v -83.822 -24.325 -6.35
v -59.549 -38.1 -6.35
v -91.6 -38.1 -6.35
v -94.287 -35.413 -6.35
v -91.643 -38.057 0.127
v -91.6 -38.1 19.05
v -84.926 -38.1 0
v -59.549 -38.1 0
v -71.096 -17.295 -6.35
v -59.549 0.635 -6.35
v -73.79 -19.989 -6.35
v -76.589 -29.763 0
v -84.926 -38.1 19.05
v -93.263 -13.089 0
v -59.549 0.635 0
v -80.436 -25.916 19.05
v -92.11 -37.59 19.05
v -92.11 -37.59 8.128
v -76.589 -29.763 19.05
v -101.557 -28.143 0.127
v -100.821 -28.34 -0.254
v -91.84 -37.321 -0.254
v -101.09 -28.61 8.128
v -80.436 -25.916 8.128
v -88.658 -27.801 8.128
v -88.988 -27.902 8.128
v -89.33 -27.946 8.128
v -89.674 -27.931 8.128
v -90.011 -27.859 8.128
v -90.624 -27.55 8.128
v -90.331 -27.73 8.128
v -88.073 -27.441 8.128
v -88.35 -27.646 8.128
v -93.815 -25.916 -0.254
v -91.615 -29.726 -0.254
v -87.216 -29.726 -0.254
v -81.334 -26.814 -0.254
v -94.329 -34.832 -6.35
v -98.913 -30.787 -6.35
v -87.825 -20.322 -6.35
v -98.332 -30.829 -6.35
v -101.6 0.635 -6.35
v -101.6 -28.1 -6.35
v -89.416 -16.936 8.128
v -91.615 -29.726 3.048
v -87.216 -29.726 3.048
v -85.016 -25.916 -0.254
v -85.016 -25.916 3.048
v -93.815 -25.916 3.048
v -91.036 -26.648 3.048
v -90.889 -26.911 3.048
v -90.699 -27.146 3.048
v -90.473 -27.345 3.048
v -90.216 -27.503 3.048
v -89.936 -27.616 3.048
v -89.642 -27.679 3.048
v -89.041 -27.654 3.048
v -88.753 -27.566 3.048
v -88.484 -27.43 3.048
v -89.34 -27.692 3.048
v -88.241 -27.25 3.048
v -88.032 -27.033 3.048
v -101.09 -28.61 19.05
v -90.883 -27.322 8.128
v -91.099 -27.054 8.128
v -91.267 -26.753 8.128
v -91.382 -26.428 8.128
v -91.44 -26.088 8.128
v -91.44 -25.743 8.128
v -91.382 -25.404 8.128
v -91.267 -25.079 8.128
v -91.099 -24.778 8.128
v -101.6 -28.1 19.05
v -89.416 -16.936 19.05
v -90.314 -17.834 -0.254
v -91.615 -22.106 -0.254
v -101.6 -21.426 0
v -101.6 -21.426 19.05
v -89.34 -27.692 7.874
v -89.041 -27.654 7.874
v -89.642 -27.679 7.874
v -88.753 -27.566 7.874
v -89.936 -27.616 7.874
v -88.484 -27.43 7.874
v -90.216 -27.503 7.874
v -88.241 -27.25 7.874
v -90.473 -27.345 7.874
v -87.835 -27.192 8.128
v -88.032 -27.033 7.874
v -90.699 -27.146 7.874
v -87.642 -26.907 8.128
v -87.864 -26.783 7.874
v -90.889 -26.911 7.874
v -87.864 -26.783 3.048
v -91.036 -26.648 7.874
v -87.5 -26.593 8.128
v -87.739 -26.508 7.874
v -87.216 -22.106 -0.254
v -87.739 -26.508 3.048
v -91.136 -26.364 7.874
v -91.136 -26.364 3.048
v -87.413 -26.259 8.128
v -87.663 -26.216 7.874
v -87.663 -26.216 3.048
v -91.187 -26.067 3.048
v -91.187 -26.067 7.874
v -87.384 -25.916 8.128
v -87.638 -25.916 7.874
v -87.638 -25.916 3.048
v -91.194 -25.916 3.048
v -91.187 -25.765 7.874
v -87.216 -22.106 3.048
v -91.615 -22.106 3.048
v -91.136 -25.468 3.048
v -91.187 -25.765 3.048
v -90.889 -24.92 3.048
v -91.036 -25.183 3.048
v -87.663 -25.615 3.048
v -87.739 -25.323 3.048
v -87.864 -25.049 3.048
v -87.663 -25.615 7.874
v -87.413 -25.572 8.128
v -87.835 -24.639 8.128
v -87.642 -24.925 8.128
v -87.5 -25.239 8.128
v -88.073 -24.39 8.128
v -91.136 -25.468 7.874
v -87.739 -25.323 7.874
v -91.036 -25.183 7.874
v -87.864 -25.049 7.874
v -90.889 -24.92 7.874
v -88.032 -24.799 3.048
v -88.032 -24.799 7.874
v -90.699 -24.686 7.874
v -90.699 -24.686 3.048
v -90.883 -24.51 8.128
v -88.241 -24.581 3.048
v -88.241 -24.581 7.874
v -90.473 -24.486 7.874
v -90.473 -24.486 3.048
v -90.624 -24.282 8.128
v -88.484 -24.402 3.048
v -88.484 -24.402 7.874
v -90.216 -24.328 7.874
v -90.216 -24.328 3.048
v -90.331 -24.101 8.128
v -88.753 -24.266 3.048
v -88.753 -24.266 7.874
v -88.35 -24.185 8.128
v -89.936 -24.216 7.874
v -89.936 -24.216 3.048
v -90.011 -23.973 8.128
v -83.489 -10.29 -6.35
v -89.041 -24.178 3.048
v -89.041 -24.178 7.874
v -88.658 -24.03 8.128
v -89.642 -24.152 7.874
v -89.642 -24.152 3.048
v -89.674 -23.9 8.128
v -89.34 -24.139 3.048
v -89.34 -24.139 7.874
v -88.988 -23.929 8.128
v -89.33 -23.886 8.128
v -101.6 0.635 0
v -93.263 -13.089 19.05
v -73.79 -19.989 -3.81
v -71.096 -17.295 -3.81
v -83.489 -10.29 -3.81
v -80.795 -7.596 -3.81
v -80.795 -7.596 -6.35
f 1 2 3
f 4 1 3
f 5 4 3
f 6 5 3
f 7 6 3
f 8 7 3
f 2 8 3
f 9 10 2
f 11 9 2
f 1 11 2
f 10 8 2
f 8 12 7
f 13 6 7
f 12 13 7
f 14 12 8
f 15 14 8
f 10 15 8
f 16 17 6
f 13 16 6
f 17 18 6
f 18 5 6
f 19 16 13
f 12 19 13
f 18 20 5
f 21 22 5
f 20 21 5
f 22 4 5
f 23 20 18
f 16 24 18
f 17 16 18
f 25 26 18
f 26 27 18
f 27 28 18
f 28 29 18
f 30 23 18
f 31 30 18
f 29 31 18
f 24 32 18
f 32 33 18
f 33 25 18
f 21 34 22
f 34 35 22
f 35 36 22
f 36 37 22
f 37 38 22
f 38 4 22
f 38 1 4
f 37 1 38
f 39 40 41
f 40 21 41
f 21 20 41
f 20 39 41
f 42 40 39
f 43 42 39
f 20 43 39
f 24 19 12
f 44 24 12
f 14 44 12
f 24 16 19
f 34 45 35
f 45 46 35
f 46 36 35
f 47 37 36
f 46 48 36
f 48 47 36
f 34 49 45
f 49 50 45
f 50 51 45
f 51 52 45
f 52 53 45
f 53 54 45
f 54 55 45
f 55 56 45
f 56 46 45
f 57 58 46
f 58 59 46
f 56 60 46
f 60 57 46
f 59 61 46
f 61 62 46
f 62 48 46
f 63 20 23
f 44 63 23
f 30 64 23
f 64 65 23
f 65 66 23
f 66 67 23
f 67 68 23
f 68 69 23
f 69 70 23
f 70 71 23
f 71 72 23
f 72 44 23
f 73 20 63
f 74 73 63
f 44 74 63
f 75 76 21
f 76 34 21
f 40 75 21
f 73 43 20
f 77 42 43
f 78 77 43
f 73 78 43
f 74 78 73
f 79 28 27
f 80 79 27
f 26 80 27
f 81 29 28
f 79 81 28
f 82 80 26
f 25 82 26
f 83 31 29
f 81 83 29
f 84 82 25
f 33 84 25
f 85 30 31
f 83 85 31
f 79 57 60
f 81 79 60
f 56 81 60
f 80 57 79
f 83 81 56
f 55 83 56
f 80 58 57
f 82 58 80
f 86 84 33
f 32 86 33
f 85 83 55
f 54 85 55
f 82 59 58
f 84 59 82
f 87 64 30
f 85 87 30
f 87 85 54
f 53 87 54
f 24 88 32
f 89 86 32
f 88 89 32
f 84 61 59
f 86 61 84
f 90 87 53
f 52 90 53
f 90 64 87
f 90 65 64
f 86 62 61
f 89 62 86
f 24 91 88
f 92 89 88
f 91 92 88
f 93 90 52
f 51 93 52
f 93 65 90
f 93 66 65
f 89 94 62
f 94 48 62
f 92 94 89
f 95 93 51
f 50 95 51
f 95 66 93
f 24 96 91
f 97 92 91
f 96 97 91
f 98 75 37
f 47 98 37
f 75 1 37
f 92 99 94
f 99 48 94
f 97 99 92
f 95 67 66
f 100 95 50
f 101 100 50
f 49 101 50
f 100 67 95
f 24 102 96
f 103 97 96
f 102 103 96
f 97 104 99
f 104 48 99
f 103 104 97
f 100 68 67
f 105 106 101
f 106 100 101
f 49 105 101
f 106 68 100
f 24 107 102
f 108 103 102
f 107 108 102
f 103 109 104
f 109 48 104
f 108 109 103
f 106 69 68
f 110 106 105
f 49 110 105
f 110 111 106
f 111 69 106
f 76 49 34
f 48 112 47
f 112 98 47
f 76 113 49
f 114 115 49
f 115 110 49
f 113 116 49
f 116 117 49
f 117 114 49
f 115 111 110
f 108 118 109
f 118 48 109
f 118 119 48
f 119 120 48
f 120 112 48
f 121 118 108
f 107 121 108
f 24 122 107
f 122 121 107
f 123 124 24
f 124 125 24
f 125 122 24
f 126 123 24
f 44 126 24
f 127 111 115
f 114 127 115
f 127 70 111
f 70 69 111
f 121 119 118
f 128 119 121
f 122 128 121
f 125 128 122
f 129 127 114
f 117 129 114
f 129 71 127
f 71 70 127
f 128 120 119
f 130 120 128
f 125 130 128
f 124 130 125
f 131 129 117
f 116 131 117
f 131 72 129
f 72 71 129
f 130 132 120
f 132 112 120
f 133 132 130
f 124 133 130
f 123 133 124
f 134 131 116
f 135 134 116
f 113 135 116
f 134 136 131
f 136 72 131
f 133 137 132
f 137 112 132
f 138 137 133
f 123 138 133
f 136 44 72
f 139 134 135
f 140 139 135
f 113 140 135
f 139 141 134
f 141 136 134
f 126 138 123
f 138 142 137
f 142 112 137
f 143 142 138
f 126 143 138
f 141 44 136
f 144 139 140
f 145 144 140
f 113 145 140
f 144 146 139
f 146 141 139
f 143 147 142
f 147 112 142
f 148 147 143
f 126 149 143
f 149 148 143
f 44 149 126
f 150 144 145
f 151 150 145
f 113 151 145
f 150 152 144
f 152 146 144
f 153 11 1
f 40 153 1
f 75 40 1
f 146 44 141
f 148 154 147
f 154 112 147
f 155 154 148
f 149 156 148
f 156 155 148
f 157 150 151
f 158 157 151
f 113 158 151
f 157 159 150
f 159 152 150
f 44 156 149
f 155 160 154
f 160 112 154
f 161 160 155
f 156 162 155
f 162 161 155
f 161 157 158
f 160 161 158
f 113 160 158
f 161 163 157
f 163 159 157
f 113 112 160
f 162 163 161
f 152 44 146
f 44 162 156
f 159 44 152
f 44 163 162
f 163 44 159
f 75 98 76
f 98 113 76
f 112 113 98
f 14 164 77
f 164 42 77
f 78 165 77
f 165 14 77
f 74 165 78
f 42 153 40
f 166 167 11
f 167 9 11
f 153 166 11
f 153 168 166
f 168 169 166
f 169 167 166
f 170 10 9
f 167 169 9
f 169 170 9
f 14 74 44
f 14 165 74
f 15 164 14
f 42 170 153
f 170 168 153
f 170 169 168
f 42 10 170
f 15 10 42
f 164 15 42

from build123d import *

# Parameters (mm, degrees)
BOSS_EXTRUDE1_DEPTH     = 27.432
BOSS_EXTRUDE2_DEPTH     = 5.08
SKETCH4_R               = 1.524
CUT_EXTRUDE1_DEPTH      = 2.286
SKETCH4_4_R             = 1.524
CUT_EXTRUDE2_DEPTH      = 63.630575033
BOSS_EXTRUDE3_DEPTH     = 3.81
FILLET1_R               = 2.54
CHAMFER3_SIZE           = 1.27
CHAMFER4_SIZE           = 0.254
SKETCH8_W               = 101.6
SKETCH8_H               = 44.45
CUT_EXTRUDE3_DEPTH      = 5.08
CHAMFER5_SIZE           = 1.27
BOSS_EXTRUDE4_DEPTH     = 6.35
FILLET2_R               = 1.27
BOSS_EXTRUDE5_DEPTH     = 19.05
CUT_EXTRUDE4_DEPTH      = 15.24
MIRROR3_COPY_1_DEPTH    = 15.24
CHAMFER7_SIZE           = 0.381
CUT_EXTRUDE6_DEPTH      = 2.54
MIRROR5_COPY_1_DEPTH    = 2.54
CUT_EXTRUDE7_DEPTH      = 10.922
SKETCH18_R              = 1.778
CUT_EXTRUDE8_DEPTH      = 8.382
MIRROR7_COPY_1_SKETCH_R = 1.778
MIRROR7_COPY_1_DEPTH    = 8.382
SKETCH19_W              = 135.869666512
SKETCH19_H              = 67.345799606
CUT_EXTRUDE9_DEPTH      = 31.242
BOSS_EXTRUDE6_DEPTH     = 20.32
SKETCH21_W              = 80.01
SKETCH21_H              = 52.07
BOSS_EXTRUDE7_DEPTH     = 3.81
FILLET3_R               = 2.54
CHAMFER8_SIZE           = 1.27
CHAMFER9_SIZE           = 0.254
CUT_EXTRUDE10_DEPTH     = 3.302
MIRROR9_COPY_1_DEPTH    = 3.302
CUT_EXTRUDE11_DEPTH     = 113.70847528


with BuildPart() as part:
    # Sketch1 → Boss-Extrude1 (new body)
    with BuildSketch(Plane(origin=(10.858740921, 0, 0), x_dir=(1, 0, 0), z_dir=(0, 0, 1))):
        Polygon((-52.705, 25.4), (-52.705, 21.59), (48.895, 21.59), (48.895, -22.86), (-52.705, -22.86), (-52.705, -25.4), (52.705, -25.4), (52.705, 25.4), align=None)
    extrude(amount=BOSS_EXTRUDE1_DEPTH)

    # Sketch1<3> → Boss-Extrude2 (add)
    with BuildSketch(Plane(origin=(10.858740921, 0, 0), x_dir=(1, 0, 0), z_dir=(0, 0, 1))):
        Polygon((48.895, 21.59), (-52.705, 21.59), (-52.705, 13.97), (-6.985, 13.97), (-6.985, -6.35), (-52.705, -6.35), (-52.705, -22.86), (48.895, -22.86), align=None)
    extrude(amount=BOSS_EXTRUDE2_DEPTH)

    # Sketch4 → Cut-Extrude1 (cut)
    # profile 1 of 4: a face of its own
    with BuildSketch(Plane(origin=(10.858740921, 0, 5.08), x_dir=(1, 0, 0), z_dir=(0, 0, 1))):
        Polygon((-44.785877438, 21.59), (-47.924122562, 21.59), (-49.493245123, 18.8722), (-47.924122562, 16.1544), (-44.785877438, 16.1544), (-43.216754877, 18.8722), align=None)
        with Locations((-46.355, 18.8722)):
            Circle(SKETCH4_R, mode=Mode.SUBTRACT)
    # profile 2 of 4: a face of its own
    with BuildSketch(Plane(origin=(10.858740921, 0, 5.08), x_dir=(1, 0, 0), z_dir=(0, 0, 1))):
        Polygon((21.126640721, 16.1544), (17.988395597, 16.1544), (16.419273036, 18.8722), (17.988395597, 21.59), (21.126640721, 21.59), (22.695763282, 18.8722), align=None)
        with Locations((19.557518159, 18.8722)):
            Circle(SKETCH4_R, mode=Mode.SUBTRACT)
    # profile 3 of 4: a face of its own
    with BuildSketch(Plane(origin=(10.858740921, 0, 5.08), x_dir=(1, 0, 0), z_dir=(0, 0, 1))):
        Polygon((22.695763282, -18.8722), (21.126640721, -16.1544), (17.988395597, -16.1544), (16.419273036, -18.8722), (17.988395597, -21.59), (21.126640721, -21.59), align=None)
        with Locations((19.557518159, -18.8722)):
            Circle(SKETCH4_R, mode=Mode.SUBTRACT)
    # profile 4 of 4: a face of its own
    with BuildSketch(Plane(origin=(10.858740921, 0, 5.08), x_dir=(1, 0, 0), z_dir=(0, 0, 1))):
        Polygon((-49.493245123, -18.8722), (-47.924122562, -16.1544), (-44.785877438, -16.1544), (-43.216754877, -18.8722), (-44.785877438, -21.59), (-47.924122562, -21.59), align=None)
        with Locations((-46.355, -18.8722)):
            Circle(SKETCH4_R, mode=Mode.SUBTRACT)
    extrude(amount=-CUT_EXTRUDE1_DEPTH, mode=Mode.SUBTRACT)

    # Sketch4<4> → Cut-Extrude2 (cut, through all)
    with BuildSketch(Plane(origin=(10.858740921, 0, 5.08), x_dir=(1, 0, 0), z_dir=(0, 0, 1))):
        with Locations((-46.355, 18.8722)):
            Circle(SKETCH4_4_R)
        with Locations((19.557518159, 18.8722)):
            Circle(SKETCH4_4_R)
        with Locations((-46.355, -18.8722)):
            Circle(SKETCH4_4_R)
        with Locations((19.557518159, -18.8722)):
            Circle(SKETCH4_4_R)
    extrude(amount=-CUT_EXTRUDE2_DEPTH, mode=Mode.SUBTRACT)

    # Sketch7 → Boss-Extrude3 (add)
    with BuildSketch(Plane(origin=(10.858740921, 0, 27.432), x_dir=(1, 0, 0), z_dir=(0, 0, 1))):
        Polygon((-52.705, 25.4), (52.705, 25.4), (52.705, -25.4), (-52.705, -25.4), (-52.705, -6.35), (-46.355, -6.35), (-46.355, 6.35), (-52.705, 6.35), align=None)
    extrude(amount=BOSS_EXTRUDE3_DEPTH)

    # Fillet1
    fillet1_edges = [part.edges().sort_by_distance(p)[0] for p in [
        (63.563740921, 25.4, 15.621),
        (63.563740921, -25.4, 15.621),
        (10.858740921, -25.4, 31.242),
        (63.563740921, 0, 31.242),
        (10.858740921, 25.4, 31.242),
    ]]
    fillet(fillet1_edges, radius=FILLET1_R)

    # Chamfer3
    chamfer3_edges = [part.edges().sort_by_distance(p)[0] for p in [
        (-41.846259079, 13.97, 27.432),
        (-41.846259079, 6.35, 29.337),
        (-41.846259079, 21.59, 16.256),
        (-41.846259079, -14.605, 27.432),
        (-41.846259079, -6.35, 29.337),
        (-38.671259079, 6.35, 31.242),
        (-35.496259079, 0, 31.242),
        (-38.671259079, -6.35, 31.242),
        (-41.846259079, -22.86, 16.256),
    ]]
    chamfer(chamfer3_edges, length=CHAMFER3_SIZE)

    # Chamfer4
    chamfer4_edges = [part.edges().sort_by_distance(p)[0] for p in [
        (28.892259079, 18.8722, 0),
        (-37.020259079, -18.8722, 0),
        (28.892259079, -18.8722, 0),
        (-37.020259079, 18.8722, 0),
    ]]
    chamfer(chamfer4_edges, length=CHAMFER4_SIZE)

    # Sketch8 → Cut-Extrude3 (cut)
    with BuildSketch(Plane(origin=(10.858740921, 0, 5.08), x_dir=(1, 0, 0), z_dir=(0, 0, 1))):
        with Locations((-1.905, -0.635)):
            Rectangle(SKETCH8_W, SKETCH8_H)
    extrude(amount=-CUT_EXTRUDE3_DEPTH, mode=Mode.SUBTRACT)

    # Chamfer5
    chamfer5_edges = [part.edges().sort_by_distance(p)[0] for p in [
        (-41.846259079, -22.86, 2.54),
        (-41.846259079, 21.59, 2.54),
    ]]
    chamfer(chamfer5_edges, length=CHAMFER5_SIZE)

    # Sketch9 → Boss-Extrude4 (add)
    with BuildSketch(Plane(origin=(10.858740921, 0, 0), x_dir=(-1, 0, 0), z_dir=(0, 0, -1))):
        Polygon((-90.741259079, 28.1), (-80.741259079, 38.1), (102.458740921, 38.1), (112.458740921, 28.1), (112.458740921, -28.1), (102.458740921, -38.1), (-80.741259079, -38.1), (-90.741259079, -28.1), align=None)
    extrude(amount=BOSS_EXTRUDE4_DEPTH)

    # Fillet2
    fillet2_edges = [part.edges().sort_by_distance(p)[0] for p in [
        (9.588740921, -25.4, 0),
        (63.563740921, 0, 0),
        (9.588740921, 25.4, 0),
        (62.819792145, 24.656051224, 0),
        (62.819792145, -24.656051224, 0),
    ]]
    fillet(fillet2_edges, radius=FILLET2_R)

    # Sketch11 → Boss-Extrude5 (add)
    with BuildSketch(Plane.XY):
        Polygon((-101.6, 28.1), (-91.6, 38.1), (-84.925667043, 38.1), (-76.588500564, 29.762833521), (-93.262833521, 13.088500564), (-101.6, 21.425667043), align=None)
        Polygon((84.925667043, 38.1), (76.588500564, 29.762833521), (93.262833521, 13.088500564), (101.6, 21.425667043), (101.6, 28.1), (91.6, 38.1), align=None)
        Polygon((91.6, -38.1), (84.925667043, -38.1), (76.588500564, -29.762833521), (93.262833521, -13.088500564), (101.6, -21.425667043), (101.6, -28.1), align=None)
        Polygon((-84.925667043, -38.1), (-76.588500564, -29.762833521), (-93.262833521, -13.088500564), (-101.6, -21.425667043), (-101.6, -28.1), (-91.6, -38.1), align=None)
    extrude(amount=BOSS_EXTRUDE5_DEPTH)

    # Sketch13 → Cut-Extrude4 (cut)
    with BuildSketch(Plane(origin=(-64.85, 64.85, 0), x_dir=(0, 0, 1), z_dir=(-0.7071067811865477, 0.7071067811865474, 0))):
        Polygon((-6.35, -44.901280605), (-6.35, -42.070807846), (-0.254, -38.551280605), (-0.254, -51.251280605), (-6.35, -47.731753364), align=None)
    cut_extrude4 = extrude(amount=-CUT_EXTRUDE4_DEPTH, mode=Mode.SUBTRACT)

    # Mirror2: Cut-Extrude4 across plane
    add(cut_extrude4.mirror(Plane.ZX), mode=Mode.SUBTRACT)

    # Mirror3: Cut-Extrude4 across plane
    add(cut_extrude4.mirror(Plane(origin=(0, 0, 0), x_dir=(0, 0, 1), z_dir=(1, 0, 0))), mode=Mode.SUBTRACT)

    # Mirror3 copy 1 sketch → Mirror3 copy 1 (cut)
    with BuildSketch(Plane(origin=(64.85, -64.85, 0), x_dir=(0, 0, 1), z_dir=(0.7071067811865477, -0.7071067811865474, 0))):
        Polygon((-6.35, -44.901280605), (-6.35, -42.070807846), (-0.254, -38.551280605), (-0.254, -51.251280605), (-6.35, -47.731753364), align=None)
    extrude(amount=-MIRROR3_COPY_1_DEPTH, mode=Mode.SUBTRACT)

    # Chamfer7
    chamfer7_edges = [part.edges().sort_by_distance(p)[0] for p in [
        (-99.845787271, 29.854212729, -3.302),
        (-96.6, 33.1, -0.254),
        (-93.354212729, 36.345787271, -3.302),
        (-99.845787271, -29.854212729, -3.302),
        (-96.6, -33.1, -0.254),
        (-93.354212729, -36.345787271, -3.302),
        (99.845787271, 29.854212729, -3.302),
        (96.6, 33.1, -0.254),
        (93.354212729, 36.345787271, -3.302),
        (99.845787271, -29.854212729, -3.302),
        (96.6, -33.1, -0.254),
        (93.354212729, -36.345787271, -3.302),
    ]]
    chamfer(chamfer7_edges, length=CHAMFER7_SIZE)

    # Sketch16 → Cut-Extrude6 (cut)
    with BuildSketch(Plane(origin=(0, 0, -6.35), x_dir=(-1, 0, 0), z_dir=(0, 0, -1))):
        Polygon((71.096072616, 17.294749227), (73.790149452, 19.988826063), (83.488826063, 10.290149452), (80.794749227, 7.596072616), align=None)
    cut_extrude6 = extrude(amount=-CUT_EXTRUDE6_DEPTH, mode=Mode.SUBTRACT)

    # Mirror4: Cut-Extrude6 across plane
    add(cut_extrude6.mirror(Plane.ZX), mode=Mode.SUBTRACT)

    # Mirror5: Cut-Extrude6 across plane
    add(cut_extrude6.mirror(Plane(origin=(0, 0, 0), x_dir=(0, 0, 1), z_dir=(1, 0, 0))), mode=Mode.SUBTRACT)

    # Mirror5 copy 1 sketch → Mirror5 copy 1 (cut)
    with BuildSketch(Plane(origin=(0, 0, -6.35), x_dir=(1, 0, 0), z_dir=(0, 0, -1))):
        Polygon((71.096072616, 17.294749227), (73.790149452, 19.988826063), (83.488826063, 10.290149452), (80.794749227, 7.596072616), align=None)
    extrude(amount=-MIRROR5_COPY_1_DEPTH, mode=Mode.SUBTRACT)

    # Sketch17 → Cut-Extrude7 (cut)
    with BuildSketch(Plane.XY.offset(19.05)):
        Polygon((-96.6, 33.1), (-92.109871939, 37.590128061), (-80.435538982, 25.915795103), (-89.415795103, 16.935538982), (-101.090128061, 28.609871939), align=None)
        Polygon((-80.435538982, -25.915795103), (-89.415795103, -16.935538982), (-101.090128061, -28.609871939), (-96.6, -33.1), (-92.109871939, -37.590128061), align=None)
        Polygon((92.109871939, -37.590128061), (80.435538982, -25.915795103), (89.415795103, -16.935538982), (101.090128061, -28.609871939), (96.6, -33.1), align=None)
        Polygon((80.435538982, 25.915795103), (89.415795103, 16.935538982), (101.090128061, 28.609871939), (96.6, 33.1), (92.109871939, 37.590128061), align=None)
    extrude(amount=-CUT_EXTRUDE7_DEPTH, mode=Mode.SUBTRACT)

    # Sketch18 → Cut-Extrude8 (cut)
    with BuildSketch(Plane.XY.offset(8.128)):
        with Locations((-89.415795103, 25.915795103)):
            Circle(SKETCH18_R)
    cut_extrude8 = extrude(amount=-CUT_EXTRUDE8_DEPTH, mode=Mode.SUBTRACT)

    # Mirror6: Cut-Extrude8 across plane
    add(cut_extrude8.mirror(Plane.ZX), mode=Mode.SUBTRACT)

    # Mirror7: Cut-Extrude8 across plane
    add(cut_extrude8.mirror(Plane(origin=(0, 0, 0), x_dir=(0, 0, 1), z_dir=(1, 0, 0))), mode=Mode.SUBTRACT)

    # Mirror7 copy 1 sketch → Mirror7 copy 1 (cut)
    with BuildSketch(Plane(origin=(0, 0, 8.128), x_dir=(-1, 0, 0), z_dir=(0, 0, 1))):
        with Locations((-89.415795103, 25.915795103)):
            Circle(MIRROR7_COPY_1_SKETCH_R)
    extrude(amount=-MIRROR7_COPY_1_DEPTH, mode=Mode.SUBTRACT)

    # Sketch19 → Cut-Extrude9 (cut)
    with BuildSketch(Plane.XY.offset(31.242)):
        Rectangle(SKETCH19_W, SKETCH19_H)
    extrude(amount=-CUT_EXTRUDE9_DEPTH, mode=Mode.SUBTRACT)

    # Sketch20 → Boss-Extrude6 (add)
    with BuildSketch(Plane.XY):
        Polygon((65.405, 22.86), (65.405, -21.59), (-10.795, -21.59), (-10.795, -25.4), (69.215, -25.4), (69.215, 26.67), (-10.795, 26.67), (-10.795, 22.86), align=None)
    extrude(amount=BOSS_EXTRUDE6_DEPTH)

    # Sketch21 → Boss-Extrude7 (add)
    with BuildSketch(Plane.XY.offset(20.32)):
        with Locations((29.21, 0.635)):
            Rectangle(SKETCH21_W, SKETCH21_H)
    extrude(amount=BOSS_EXTRUDE7_DEPTH)

    # Fillet3
    fillet3_edges = [part.edges().sort_by_distance(p)[0] for p in [
        (29.21, -25.4, 0),
        (69.215, 0.635, 0),
        (69.215, -25.4, 12.065),
        (29.21, 26.67, 0),
        (69.215, 26.67, 12.065),
        (29.21, -25.4, 24.13),
        (69.215, 0.635, 24.13),
        (29.21, 26.67, 24.13),
    ]]
    fillet(fillet3_edges, radius=FILLET3_R)

    # Chamfer8
    chamfer8_edges = [part.edges().sort_by_distance(p)[0] for p in [
        (-10.795, 22.86, 10.16),
        (-10.795, -21.59, 10.16),
        (-10.795, 0.635, 20.32),
    ]]
    chamfer(chamfer8_edges, length=CHAMFER8_SIZE)

    # Chamfer9
    chamfer9_edges = [part.edges().sort_by_distance(p)[0] for p in [
        (-91.193795103, 25.915795103, 8.128),
        (-91.193795103, -25.915795103, 8.128),
        (91.193795103, 25.915795103, 8.128),
        (91.193795103, -25.915795103, 8.128),
    ]]
    chamfer(chamfer9_edges, length=CHAMFER9_SIZE)

    # Sketch22 → Cut-Extrude10 (cut)
    with BuildSketch(Plane(origin=(0, 0, -0.254), x_dir=(-1, 0, 0), z_dir=(0, 0, -1))):
        Polygon((-85.016386052, -25.915795103), (-87.216090578, -22.105795103), (-91.615499629, -22.105795103), (-93.815204154, -25.915795103), (-91.615499629, -29.725795103), (-87.216090578, -29.725795103), align=None)
    cut_extrude10 = extrude(amount=-CUT_EXTRUDE10_DEPTH, mode=Mode.SUBTRACT)

    # Mirror8: Cut-Extrude10 across plane
    add(cut_extrude10.mirror(Plane.ZX), mode=Mode.SUBTRACT)

    # Mirror9: Cut-Extrude10 across plane
    add(cut_extrude10.mirror(Plane(origin=(0, 0, 0), x_dir=(0, 0, 1), z_dir=(1, 0, 0))), mode=Mode.SUBTRACT)

    # Mirror9 copy 1 sketch → Mirror9 copy 1 (cut)
    with BuildSketch(Plane(origin=(0, 0, -0.254), x_dir=(1, 0, 0), z_dir=(0, 0, -1))):
        Polygon((-85.016386052, -25.915795103), (-87.216090578, -22.105795103), (-91.615499629, -22.105795103), (-93.815204154, -25.915795103), (-91.615499629, -29.725795103), (-87.216090578, -29.725795103), align=None)
    extrude(amount=-MIRROR9_COPY_1_DEPTH, mode=Mode.SUBTRACT)

    # Sketch25 → Cut-Extrude11 (cut, through all)
    with BuildSketch(Plane.XY.offset(24.13)):
        Polygon((-59.549119492, -50.275205582), (111.201043926, -50.275205582), (111.201043926, 51.545205582), (-132.791043926, 51.545205582), (-132.791043926, 0.635), (-59.549119492, 0.635), align=None)
    extrude(amount=-CUT_EXTRUDE11_DEPTH, mode=Mode.SUBTRACT)


solid = part.part
